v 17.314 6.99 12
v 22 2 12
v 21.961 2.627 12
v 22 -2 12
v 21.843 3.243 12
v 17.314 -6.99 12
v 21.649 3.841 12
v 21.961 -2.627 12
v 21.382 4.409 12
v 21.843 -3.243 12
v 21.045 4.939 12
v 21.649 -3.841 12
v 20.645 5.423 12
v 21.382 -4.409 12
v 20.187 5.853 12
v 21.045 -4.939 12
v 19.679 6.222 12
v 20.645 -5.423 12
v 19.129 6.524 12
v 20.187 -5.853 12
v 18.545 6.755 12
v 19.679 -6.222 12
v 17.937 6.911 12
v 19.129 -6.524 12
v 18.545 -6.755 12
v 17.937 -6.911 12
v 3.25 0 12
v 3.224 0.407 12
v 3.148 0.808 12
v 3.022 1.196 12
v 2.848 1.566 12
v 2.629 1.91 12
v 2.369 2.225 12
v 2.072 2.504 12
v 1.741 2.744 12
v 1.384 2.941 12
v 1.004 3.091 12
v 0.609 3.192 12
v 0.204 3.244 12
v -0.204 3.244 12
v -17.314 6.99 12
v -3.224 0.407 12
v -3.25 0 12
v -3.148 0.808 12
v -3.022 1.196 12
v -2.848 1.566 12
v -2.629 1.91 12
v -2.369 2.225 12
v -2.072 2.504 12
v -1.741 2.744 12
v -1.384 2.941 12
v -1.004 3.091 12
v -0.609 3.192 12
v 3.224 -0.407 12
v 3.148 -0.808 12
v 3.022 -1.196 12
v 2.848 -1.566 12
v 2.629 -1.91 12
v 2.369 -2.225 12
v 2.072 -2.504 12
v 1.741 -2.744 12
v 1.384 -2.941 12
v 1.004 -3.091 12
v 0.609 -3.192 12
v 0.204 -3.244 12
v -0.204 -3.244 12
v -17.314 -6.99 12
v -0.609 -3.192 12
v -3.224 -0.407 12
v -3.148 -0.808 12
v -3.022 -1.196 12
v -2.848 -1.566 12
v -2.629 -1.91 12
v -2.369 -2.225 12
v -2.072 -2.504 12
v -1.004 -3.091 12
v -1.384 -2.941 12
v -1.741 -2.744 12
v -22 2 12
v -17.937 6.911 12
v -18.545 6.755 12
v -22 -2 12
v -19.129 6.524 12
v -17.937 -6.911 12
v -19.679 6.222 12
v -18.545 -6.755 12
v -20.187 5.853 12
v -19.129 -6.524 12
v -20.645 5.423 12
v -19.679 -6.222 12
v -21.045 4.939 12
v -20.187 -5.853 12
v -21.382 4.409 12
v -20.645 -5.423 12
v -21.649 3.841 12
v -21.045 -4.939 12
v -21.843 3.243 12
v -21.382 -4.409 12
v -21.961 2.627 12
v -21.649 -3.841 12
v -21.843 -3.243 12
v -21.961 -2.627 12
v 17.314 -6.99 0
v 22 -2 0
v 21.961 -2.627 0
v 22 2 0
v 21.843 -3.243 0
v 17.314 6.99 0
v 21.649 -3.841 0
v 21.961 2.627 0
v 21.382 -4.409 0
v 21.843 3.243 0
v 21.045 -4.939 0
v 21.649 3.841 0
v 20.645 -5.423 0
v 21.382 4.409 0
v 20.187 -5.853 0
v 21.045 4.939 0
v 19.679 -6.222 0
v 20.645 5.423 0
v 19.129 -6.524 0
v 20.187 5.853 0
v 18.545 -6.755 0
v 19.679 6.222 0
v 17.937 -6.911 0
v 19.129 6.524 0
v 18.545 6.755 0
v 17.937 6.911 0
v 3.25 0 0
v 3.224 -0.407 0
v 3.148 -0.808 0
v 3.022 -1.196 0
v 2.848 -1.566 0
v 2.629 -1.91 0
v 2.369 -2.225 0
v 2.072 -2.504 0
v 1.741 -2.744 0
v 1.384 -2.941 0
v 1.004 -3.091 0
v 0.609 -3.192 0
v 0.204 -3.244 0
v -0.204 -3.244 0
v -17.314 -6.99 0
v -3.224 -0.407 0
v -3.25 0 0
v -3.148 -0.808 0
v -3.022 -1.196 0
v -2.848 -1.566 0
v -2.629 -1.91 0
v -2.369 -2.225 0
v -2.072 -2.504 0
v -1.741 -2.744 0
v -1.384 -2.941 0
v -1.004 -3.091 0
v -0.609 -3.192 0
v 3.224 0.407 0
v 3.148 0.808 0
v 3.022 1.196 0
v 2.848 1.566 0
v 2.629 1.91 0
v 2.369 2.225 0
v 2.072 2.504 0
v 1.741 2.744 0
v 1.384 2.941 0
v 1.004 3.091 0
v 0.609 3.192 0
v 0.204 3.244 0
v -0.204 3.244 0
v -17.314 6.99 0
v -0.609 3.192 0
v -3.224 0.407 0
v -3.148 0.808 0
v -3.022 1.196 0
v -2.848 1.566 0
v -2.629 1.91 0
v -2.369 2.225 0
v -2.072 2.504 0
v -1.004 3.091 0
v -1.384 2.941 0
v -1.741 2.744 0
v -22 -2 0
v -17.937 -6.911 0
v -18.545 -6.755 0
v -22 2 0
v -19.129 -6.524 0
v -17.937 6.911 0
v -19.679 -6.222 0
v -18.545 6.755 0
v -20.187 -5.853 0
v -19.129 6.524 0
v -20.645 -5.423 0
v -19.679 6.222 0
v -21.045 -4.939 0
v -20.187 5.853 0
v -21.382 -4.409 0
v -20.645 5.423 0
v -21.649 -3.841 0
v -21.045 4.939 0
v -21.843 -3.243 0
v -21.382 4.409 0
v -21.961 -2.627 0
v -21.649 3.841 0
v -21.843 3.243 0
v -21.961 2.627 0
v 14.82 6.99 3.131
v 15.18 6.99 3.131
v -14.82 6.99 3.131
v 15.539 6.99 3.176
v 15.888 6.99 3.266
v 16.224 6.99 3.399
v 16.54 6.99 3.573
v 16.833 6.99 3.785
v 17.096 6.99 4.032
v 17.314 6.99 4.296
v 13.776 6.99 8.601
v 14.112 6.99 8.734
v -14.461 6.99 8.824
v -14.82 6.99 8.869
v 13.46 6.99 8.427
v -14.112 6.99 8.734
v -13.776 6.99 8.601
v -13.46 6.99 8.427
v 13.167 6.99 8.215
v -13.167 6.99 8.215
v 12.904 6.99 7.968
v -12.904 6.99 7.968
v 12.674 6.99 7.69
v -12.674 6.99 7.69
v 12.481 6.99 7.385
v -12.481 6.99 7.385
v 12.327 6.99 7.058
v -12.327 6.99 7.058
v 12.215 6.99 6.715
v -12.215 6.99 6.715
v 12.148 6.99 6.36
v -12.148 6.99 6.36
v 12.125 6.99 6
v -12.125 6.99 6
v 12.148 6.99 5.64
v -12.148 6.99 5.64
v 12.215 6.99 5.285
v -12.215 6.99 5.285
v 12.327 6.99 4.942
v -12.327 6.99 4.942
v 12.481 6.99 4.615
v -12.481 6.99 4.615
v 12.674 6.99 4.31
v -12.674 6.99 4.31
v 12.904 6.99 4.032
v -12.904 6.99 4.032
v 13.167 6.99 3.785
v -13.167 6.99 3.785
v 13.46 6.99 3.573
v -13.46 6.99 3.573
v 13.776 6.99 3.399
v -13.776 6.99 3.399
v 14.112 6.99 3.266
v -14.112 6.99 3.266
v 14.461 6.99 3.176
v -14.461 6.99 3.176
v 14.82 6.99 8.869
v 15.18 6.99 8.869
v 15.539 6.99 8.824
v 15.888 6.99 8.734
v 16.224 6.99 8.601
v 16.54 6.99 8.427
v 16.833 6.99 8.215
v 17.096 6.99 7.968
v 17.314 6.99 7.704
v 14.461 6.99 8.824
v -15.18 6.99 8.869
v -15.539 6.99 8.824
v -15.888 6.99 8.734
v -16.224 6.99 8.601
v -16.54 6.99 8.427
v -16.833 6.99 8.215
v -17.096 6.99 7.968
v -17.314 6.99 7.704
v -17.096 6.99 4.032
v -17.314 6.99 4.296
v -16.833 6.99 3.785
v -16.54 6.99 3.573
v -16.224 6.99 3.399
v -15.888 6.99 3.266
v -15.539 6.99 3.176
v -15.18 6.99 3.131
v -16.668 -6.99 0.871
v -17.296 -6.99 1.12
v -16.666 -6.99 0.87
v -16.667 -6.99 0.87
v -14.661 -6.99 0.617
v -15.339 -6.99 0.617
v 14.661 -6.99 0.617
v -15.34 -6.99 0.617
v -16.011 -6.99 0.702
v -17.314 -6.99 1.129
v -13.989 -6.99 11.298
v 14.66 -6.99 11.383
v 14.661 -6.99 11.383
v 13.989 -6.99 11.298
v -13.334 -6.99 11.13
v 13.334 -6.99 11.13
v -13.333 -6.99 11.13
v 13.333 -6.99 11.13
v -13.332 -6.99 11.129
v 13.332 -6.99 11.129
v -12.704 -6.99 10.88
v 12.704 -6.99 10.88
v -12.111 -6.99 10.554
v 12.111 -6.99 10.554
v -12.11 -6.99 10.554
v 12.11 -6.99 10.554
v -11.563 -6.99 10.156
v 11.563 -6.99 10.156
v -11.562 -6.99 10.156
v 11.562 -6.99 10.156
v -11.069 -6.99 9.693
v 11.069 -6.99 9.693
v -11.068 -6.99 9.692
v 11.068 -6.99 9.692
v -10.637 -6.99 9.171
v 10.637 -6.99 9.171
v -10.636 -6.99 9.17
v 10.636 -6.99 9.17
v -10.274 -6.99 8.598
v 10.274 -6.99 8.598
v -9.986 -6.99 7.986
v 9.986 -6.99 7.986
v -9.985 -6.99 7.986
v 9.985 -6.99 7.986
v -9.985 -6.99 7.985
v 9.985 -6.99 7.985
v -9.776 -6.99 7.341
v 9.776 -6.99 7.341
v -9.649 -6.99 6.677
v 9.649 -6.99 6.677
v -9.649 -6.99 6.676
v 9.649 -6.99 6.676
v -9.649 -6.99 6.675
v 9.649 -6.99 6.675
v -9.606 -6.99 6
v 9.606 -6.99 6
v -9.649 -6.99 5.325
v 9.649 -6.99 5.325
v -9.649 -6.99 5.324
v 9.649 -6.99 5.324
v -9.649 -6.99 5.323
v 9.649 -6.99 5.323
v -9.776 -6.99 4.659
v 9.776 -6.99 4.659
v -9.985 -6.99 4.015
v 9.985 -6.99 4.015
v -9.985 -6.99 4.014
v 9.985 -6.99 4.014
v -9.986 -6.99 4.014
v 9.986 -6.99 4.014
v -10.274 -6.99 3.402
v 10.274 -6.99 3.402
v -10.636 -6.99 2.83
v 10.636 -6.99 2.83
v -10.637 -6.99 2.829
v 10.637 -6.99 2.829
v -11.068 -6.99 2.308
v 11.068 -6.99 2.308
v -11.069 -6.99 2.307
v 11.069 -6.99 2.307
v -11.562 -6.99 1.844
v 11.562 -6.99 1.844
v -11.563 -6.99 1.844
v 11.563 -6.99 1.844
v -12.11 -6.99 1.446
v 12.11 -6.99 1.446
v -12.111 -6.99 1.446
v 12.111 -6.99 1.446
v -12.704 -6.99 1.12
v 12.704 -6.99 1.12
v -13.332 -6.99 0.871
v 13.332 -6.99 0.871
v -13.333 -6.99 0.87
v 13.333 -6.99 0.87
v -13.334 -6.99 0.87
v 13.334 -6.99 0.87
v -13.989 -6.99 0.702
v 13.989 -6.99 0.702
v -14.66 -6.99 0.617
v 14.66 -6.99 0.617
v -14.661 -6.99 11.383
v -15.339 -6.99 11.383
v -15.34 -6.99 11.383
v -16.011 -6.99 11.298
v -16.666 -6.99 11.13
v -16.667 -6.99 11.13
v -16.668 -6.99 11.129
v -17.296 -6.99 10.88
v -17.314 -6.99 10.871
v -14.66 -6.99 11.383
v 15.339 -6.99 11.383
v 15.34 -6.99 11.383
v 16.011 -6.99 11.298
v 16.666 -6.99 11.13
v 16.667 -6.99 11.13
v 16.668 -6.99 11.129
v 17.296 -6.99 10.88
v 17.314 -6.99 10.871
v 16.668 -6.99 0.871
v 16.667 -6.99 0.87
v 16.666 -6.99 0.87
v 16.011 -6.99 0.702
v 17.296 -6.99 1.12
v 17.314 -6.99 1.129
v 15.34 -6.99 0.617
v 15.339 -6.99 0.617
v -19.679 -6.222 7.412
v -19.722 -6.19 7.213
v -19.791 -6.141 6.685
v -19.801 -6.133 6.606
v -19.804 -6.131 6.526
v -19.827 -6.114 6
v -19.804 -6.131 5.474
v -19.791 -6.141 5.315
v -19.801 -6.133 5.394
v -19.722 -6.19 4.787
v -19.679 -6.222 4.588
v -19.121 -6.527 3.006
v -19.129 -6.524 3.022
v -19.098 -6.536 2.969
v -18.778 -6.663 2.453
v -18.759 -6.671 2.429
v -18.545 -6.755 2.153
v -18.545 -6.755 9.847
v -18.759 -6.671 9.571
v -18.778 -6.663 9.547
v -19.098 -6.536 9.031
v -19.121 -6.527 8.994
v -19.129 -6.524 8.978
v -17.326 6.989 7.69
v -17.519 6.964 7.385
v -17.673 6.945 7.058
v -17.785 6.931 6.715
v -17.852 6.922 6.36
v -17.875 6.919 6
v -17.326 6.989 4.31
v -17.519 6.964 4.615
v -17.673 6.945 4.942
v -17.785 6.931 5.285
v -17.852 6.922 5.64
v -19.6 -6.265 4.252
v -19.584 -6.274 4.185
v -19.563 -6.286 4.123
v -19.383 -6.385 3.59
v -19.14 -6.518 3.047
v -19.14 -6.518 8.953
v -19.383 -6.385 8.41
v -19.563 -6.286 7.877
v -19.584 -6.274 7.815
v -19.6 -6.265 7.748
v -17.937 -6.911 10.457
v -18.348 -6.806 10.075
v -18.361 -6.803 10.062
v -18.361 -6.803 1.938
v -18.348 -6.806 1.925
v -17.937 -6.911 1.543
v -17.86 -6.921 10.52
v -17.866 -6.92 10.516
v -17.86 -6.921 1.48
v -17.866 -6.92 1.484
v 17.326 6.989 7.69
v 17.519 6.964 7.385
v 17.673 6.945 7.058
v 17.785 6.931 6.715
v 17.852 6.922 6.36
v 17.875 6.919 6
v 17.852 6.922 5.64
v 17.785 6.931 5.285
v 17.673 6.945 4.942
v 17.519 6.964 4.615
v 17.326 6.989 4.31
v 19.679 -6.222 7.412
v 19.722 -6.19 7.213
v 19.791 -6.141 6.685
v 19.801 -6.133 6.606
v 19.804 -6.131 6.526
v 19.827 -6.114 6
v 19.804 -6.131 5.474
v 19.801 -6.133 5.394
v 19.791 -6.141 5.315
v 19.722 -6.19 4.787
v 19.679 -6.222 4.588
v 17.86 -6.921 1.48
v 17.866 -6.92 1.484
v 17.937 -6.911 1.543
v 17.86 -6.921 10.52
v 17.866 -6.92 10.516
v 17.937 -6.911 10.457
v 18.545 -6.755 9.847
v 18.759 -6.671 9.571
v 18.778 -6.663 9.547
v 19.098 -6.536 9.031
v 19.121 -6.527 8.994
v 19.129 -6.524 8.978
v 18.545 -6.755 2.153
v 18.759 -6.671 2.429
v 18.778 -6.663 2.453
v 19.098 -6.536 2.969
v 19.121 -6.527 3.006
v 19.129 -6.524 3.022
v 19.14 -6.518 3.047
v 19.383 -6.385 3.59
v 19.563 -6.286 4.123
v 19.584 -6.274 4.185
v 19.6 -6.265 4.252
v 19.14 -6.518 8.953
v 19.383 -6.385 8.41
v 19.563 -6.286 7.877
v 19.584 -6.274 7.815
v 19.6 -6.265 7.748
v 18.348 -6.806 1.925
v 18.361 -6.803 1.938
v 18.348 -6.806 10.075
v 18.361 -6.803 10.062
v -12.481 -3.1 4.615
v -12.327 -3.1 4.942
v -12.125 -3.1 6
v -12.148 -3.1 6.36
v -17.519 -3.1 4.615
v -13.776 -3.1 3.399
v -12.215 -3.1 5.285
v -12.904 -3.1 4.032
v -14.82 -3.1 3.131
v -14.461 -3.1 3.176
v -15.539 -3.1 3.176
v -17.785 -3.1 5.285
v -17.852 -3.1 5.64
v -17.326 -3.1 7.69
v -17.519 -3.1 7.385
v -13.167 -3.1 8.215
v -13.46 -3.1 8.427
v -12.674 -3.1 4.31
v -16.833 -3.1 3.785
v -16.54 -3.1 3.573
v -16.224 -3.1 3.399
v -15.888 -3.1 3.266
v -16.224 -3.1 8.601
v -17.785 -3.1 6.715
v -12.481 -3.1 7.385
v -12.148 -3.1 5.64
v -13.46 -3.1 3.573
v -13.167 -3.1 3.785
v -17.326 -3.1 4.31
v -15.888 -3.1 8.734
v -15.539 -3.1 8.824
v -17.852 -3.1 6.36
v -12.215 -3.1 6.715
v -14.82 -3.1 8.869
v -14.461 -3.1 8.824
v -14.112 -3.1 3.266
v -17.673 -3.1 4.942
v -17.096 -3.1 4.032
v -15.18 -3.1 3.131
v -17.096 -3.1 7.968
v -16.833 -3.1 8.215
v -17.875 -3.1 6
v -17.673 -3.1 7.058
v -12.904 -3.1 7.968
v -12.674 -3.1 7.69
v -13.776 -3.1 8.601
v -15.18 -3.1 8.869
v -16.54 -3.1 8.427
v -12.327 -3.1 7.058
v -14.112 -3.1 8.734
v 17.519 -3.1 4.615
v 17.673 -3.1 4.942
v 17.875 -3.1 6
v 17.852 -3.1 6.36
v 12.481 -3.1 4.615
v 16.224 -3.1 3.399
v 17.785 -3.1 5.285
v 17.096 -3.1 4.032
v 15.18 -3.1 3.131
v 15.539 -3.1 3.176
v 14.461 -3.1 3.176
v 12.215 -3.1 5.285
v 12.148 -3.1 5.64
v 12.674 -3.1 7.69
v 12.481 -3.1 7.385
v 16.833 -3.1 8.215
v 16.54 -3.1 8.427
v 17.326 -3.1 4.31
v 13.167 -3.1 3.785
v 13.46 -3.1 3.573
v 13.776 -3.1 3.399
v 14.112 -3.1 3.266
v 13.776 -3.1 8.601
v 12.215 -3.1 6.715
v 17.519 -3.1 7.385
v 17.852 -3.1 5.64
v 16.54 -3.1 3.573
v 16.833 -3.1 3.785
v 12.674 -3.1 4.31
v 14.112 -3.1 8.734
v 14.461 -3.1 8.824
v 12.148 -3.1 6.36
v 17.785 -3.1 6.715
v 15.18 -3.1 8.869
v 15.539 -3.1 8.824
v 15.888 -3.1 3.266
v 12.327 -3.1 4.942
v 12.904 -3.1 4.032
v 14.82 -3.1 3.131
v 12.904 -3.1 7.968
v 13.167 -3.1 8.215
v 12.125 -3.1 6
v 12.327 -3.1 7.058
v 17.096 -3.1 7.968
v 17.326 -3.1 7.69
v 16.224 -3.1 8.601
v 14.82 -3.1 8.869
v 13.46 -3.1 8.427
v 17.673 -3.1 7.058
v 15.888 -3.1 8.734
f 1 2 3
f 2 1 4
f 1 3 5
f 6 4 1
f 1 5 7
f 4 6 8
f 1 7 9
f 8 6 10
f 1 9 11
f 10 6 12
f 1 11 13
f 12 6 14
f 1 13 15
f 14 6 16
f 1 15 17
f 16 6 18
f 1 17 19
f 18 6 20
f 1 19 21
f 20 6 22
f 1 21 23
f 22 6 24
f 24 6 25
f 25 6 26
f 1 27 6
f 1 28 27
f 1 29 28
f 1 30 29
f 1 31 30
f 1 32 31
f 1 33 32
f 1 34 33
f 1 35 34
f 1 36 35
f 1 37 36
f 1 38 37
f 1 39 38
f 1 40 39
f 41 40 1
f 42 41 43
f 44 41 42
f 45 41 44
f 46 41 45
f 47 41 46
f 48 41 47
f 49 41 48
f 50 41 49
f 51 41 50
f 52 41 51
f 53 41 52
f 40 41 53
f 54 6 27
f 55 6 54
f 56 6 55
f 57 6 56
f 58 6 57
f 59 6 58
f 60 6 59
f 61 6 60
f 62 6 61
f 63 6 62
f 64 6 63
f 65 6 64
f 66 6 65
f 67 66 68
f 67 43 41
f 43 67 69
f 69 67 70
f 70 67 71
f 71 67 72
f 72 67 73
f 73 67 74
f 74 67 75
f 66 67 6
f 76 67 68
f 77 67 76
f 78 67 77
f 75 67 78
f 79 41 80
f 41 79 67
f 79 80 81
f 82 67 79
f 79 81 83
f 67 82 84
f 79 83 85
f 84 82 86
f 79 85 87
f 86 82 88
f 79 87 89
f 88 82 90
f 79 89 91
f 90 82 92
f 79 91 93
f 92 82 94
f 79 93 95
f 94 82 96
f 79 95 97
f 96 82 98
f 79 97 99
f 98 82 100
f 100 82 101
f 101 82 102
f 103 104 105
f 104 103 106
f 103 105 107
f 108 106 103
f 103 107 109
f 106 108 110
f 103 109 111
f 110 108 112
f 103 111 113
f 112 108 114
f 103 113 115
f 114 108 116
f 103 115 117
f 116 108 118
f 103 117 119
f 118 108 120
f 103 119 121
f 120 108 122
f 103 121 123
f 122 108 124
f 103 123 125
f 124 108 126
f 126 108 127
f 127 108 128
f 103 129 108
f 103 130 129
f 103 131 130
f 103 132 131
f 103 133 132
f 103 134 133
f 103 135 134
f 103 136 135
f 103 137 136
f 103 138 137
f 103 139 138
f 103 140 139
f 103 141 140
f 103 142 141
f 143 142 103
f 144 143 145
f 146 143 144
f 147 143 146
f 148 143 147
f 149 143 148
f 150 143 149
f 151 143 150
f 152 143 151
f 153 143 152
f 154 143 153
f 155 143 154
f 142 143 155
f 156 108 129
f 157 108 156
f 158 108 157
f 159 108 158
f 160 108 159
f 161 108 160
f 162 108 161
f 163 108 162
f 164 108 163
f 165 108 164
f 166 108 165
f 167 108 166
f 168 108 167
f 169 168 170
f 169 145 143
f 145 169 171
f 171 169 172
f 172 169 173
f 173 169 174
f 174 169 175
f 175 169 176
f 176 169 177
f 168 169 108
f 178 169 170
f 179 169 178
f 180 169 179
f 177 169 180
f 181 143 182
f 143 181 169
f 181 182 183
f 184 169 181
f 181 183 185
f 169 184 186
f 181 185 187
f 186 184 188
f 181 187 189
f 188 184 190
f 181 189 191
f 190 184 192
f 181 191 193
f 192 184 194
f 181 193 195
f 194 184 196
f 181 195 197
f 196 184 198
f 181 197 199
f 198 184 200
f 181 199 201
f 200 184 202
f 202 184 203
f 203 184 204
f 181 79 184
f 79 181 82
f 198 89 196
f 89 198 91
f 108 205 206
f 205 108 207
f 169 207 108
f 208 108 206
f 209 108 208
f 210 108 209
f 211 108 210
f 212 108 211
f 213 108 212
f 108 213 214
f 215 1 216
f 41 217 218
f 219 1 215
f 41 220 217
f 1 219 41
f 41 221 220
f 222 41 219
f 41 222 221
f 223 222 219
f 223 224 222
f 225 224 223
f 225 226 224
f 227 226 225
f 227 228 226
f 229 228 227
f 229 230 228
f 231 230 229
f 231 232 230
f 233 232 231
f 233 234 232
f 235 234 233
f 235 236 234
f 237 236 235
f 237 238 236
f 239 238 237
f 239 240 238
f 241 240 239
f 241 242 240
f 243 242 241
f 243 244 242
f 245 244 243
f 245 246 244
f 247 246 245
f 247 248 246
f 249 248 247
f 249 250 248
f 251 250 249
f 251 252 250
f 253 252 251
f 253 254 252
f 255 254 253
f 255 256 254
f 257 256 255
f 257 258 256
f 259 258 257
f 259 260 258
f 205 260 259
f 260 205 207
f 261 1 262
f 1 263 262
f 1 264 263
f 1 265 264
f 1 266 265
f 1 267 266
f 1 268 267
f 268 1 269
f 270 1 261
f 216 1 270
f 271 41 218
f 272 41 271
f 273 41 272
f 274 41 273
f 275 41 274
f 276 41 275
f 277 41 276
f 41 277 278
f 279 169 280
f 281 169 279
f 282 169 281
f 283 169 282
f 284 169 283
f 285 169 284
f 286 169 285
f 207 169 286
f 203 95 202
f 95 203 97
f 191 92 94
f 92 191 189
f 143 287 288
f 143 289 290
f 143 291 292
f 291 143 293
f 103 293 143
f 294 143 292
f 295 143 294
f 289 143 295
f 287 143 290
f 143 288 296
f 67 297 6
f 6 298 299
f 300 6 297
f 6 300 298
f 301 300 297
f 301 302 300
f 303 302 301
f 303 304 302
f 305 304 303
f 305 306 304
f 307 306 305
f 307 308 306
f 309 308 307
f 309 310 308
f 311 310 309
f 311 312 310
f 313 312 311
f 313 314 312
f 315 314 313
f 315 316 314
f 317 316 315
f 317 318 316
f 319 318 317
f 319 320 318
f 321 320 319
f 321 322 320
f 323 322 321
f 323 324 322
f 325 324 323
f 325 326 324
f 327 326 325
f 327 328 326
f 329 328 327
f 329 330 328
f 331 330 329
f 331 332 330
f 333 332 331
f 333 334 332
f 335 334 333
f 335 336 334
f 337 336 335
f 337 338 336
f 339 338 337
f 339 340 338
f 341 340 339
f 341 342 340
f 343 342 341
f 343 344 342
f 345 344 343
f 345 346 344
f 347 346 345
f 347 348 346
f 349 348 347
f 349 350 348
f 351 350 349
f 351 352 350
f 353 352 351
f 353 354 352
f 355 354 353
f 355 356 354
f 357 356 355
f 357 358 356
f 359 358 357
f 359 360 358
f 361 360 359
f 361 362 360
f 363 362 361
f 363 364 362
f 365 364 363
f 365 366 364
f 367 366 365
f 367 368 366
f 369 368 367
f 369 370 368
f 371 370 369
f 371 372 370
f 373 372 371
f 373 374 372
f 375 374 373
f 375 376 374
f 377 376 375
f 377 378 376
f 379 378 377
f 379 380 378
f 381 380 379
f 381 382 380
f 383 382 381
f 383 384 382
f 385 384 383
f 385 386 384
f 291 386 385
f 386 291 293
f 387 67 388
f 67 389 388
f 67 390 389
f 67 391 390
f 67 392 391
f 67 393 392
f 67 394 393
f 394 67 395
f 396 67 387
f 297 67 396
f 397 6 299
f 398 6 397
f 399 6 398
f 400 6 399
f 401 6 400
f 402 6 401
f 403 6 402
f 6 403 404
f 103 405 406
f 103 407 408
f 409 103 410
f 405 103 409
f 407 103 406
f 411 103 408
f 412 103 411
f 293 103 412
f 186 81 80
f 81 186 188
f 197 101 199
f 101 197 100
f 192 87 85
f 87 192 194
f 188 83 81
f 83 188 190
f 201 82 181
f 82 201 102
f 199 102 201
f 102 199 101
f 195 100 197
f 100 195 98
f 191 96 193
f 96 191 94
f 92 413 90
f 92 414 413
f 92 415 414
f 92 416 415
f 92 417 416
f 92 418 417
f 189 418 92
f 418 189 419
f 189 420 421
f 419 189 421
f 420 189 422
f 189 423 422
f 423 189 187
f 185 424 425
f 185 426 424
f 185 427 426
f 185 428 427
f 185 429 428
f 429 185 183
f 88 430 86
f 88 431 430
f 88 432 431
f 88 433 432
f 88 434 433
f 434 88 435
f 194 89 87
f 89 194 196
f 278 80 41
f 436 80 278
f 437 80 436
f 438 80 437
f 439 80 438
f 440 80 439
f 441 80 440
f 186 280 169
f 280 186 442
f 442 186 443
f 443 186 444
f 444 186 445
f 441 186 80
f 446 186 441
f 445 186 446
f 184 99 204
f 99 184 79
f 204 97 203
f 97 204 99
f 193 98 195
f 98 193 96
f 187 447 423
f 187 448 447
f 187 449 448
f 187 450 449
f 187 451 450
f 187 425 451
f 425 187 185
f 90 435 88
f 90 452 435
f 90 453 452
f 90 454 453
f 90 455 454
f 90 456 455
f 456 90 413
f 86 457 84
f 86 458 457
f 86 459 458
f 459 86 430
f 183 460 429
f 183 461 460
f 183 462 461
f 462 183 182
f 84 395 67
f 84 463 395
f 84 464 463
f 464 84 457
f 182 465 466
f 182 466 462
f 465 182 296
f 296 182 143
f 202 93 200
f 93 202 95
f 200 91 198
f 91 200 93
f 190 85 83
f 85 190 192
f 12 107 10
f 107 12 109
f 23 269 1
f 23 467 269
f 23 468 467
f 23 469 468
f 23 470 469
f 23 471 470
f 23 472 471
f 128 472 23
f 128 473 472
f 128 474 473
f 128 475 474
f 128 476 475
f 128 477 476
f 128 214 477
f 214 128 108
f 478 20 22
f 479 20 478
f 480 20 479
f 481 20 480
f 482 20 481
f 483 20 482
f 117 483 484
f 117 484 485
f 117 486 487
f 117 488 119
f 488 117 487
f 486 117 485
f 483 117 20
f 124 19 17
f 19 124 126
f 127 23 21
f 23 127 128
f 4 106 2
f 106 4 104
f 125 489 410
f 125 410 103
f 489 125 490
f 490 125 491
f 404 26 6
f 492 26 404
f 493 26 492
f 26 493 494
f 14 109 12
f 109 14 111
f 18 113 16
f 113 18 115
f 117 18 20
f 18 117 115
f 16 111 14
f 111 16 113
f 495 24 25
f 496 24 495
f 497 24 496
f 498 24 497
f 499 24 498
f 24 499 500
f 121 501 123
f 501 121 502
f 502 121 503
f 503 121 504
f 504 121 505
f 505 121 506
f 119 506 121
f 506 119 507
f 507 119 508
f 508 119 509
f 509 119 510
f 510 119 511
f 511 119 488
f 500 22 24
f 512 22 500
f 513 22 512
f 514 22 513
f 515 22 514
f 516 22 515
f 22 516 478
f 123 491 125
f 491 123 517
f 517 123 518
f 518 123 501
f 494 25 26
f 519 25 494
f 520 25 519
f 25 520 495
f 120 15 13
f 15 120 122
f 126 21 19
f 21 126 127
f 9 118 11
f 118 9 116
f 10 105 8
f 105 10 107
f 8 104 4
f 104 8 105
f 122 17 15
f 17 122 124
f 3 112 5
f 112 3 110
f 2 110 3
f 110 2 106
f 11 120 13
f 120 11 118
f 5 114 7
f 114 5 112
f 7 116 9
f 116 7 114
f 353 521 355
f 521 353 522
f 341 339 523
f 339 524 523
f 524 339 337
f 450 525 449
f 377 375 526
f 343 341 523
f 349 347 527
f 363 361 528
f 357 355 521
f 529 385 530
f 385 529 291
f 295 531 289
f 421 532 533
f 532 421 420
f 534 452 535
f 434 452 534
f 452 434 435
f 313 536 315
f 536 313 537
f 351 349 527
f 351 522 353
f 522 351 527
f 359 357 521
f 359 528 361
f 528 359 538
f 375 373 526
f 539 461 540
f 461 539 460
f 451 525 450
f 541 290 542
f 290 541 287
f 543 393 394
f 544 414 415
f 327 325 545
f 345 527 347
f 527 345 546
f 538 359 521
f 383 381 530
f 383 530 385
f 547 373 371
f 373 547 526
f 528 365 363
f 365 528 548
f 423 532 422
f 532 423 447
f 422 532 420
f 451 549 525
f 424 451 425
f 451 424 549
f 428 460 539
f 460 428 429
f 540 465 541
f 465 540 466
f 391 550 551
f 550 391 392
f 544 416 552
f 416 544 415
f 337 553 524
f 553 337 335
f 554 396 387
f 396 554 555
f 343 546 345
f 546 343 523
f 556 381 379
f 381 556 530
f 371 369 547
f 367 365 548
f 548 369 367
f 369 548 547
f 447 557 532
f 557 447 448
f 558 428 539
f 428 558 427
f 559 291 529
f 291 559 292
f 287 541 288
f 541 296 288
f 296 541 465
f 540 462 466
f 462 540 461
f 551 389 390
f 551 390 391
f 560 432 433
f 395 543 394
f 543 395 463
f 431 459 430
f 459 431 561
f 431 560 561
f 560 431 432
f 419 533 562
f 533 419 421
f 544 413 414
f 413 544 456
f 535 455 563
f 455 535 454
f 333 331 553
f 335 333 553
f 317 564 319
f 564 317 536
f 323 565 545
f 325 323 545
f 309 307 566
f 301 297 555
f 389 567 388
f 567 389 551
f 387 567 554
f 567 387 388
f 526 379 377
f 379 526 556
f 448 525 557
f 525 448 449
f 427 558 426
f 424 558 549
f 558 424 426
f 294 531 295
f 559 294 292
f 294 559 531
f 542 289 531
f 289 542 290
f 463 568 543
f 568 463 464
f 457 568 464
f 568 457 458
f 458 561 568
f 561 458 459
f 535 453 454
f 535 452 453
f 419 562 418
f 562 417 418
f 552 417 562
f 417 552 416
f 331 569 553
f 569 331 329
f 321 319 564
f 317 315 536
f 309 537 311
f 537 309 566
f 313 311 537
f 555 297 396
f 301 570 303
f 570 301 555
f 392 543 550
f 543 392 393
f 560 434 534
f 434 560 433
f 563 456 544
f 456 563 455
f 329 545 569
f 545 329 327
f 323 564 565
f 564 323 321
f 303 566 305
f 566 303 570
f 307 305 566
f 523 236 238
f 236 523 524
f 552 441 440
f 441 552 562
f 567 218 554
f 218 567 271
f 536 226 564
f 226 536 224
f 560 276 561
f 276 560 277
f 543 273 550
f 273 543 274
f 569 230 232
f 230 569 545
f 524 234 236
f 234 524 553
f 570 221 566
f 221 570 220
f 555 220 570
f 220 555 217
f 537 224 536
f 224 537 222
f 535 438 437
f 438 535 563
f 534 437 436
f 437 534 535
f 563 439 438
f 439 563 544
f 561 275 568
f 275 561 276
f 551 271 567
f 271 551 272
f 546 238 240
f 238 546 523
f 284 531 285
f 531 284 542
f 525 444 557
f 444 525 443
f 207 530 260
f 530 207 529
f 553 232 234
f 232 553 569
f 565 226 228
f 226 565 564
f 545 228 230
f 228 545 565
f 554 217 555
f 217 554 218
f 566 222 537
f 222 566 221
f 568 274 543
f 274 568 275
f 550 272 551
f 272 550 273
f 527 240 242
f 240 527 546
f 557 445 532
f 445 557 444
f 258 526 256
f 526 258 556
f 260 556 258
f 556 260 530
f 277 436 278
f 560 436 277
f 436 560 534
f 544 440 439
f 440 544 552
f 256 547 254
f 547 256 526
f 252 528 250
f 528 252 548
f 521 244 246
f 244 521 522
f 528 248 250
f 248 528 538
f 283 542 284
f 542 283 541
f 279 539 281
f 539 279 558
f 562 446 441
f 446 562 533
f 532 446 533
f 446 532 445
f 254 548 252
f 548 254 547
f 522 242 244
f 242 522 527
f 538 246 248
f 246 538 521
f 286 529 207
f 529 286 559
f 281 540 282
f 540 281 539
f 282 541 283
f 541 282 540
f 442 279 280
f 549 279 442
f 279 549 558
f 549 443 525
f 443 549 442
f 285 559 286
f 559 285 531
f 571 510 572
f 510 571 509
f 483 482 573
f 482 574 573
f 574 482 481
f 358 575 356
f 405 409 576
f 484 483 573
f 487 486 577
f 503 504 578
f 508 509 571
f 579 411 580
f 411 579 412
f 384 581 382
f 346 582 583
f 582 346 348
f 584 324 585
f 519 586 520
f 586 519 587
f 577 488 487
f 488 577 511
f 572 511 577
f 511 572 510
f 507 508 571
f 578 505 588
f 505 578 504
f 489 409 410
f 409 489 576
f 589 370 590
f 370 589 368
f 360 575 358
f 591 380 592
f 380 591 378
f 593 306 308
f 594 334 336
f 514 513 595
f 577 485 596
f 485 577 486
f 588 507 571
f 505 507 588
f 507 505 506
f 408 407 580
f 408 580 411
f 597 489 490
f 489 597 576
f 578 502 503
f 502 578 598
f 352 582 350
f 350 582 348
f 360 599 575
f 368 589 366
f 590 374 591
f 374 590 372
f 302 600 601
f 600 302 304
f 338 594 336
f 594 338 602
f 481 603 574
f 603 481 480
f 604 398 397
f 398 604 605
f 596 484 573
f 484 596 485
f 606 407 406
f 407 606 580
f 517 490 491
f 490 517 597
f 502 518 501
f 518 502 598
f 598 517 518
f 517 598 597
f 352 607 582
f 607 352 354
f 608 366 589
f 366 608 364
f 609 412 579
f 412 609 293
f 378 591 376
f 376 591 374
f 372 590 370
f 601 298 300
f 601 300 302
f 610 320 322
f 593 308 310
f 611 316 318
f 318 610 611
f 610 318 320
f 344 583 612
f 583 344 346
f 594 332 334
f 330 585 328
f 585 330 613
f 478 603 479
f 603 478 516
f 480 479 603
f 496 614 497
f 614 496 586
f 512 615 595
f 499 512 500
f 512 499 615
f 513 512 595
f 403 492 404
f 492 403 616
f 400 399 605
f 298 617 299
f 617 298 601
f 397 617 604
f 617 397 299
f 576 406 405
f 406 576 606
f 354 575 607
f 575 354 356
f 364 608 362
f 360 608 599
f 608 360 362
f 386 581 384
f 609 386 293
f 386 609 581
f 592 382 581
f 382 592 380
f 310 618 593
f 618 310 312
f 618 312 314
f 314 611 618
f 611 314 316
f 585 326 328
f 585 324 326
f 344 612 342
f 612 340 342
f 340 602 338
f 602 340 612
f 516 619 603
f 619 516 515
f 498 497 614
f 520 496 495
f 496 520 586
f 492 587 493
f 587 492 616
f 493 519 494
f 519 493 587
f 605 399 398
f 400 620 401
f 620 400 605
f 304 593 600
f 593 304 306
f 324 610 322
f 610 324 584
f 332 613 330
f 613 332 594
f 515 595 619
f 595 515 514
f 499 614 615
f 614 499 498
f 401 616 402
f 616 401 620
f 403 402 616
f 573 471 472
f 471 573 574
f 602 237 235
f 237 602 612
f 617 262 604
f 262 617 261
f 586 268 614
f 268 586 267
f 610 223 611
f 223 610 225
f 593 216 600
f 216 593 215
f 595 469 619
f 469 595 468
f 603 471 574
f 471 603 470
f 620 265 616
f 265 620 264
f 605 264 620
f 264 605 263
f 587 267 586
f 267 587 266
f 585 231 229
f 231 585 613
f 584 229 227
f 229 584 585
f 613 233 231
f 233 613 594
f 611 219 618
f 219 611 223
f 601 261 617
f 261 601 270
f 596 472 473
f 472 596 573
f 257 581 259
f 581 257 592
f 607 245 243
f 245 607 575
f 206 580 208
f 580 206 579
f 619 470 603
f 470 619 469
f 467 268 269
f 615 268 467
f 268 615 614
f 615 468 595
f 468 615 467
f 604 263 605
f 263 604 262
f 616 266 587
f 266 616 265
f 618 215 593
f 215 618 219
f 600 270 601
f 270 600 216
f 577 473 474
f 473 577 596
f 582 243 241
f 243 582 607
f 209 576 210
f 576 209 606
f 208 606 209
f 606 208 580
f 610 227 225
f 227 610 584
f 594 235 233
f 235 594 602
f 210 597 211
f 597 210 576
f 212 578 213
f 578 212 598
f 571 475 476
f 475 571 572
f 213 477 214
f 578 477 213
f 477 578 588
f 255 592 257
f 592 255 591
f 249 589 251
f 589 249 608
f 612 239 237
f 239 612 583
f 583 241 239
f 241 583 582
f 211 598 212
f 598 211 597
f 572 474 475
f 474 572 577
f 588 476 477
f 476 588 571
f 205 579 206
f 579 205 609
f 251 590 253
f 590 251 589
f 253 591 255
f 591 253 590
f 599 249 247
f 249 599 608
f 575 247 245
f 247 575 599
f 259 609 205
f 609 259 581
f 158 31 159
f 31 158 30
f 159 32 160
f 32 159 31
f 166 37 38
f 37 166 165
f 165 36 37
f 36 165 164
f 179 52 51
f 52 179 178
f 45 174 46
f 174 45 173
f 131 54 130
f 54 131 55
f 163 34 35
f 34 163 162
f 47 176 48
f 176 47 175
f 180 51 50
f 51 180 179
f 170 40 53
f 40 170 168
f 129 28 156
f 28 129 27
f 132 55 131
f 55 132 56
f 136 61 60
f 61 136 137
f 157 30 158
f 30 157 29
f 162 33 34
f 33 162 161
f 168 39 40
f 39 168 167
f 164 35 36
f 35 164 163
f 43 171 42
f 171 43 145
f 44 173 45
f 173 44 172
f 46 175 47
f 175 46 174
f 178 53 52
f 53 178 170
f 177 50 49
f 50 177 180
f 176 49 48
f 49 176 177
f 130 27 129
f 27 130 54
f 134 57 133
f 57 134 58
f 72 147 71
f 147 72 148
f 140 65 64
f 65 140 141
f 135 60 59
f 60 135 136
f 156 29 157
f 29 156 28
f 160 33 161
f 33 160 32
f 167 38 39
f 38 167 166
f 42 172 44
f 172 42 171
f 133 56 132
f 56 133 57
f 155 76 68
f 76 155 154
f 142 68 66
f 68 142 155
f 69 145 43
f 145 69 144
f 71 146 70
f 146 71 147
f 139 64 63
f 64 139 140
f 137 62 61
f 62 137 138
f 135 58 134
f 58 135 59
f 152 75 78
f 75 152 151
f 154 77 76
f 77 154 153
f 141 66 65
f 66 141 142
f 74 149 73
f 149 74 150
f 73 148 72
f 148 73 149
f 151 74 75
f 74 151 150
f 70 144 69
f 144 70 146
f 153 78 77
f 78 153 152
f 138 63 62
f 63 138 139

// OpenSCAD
$fn = 50;


difference() {
	union() {
		cylinder(h = 12, r = 7.0000000000);
		translate(v = [-7.5000000000, 0.0000000000, 0]) {
			hull() {
				translate(v = [-9.5000000000, 2.0000000000, 0]) {
					cylinder(h = 12, r = 5);
				}
				translate(v = [9.5000000000, 2.0000000000, 0]) {
					cylinder(h = 12, r = 5);
				}
				translate(v = [-9.5000000000, -2.0000000000, 0]) {
					cylinder(h = 12, r = 5);
				}
				translate(v = [9.5000000000, -2.0000000000, 0]) {
					cylinder(h = 12, r = 5);
				}
			}
		}
		translate(v = [-7.5000000000, 0.0000000000, 0]) {
			hull() {
				translate(v = [-9.5000000000, 2.0000000000, 0]) {
					cylinder(h = 12, r = 5);
				}
				translate(v = [9.5000000000, 2.0000000000, 0]) {
					cylinder(h = 12, r = 5);
				}
				translate(v = [-9.5000000000, -2.0000000000, 0]) {
					cylinder(h = 12, r = 5);
				}
				translate(v = [9.5000000000, -2.0000000000, 0]) {
					cylinder(h = 12, r = 5);
				}
			}
		}
		translate(v = [7.5000000000, 0.0000000000, 0]) {
			hull() {
				translate(v = [-9.5000000000, 2.0000000000, 0]) {
					cylinder(h = 12, r = 5);
				}
				translate(v = [9.5000000000, 2.0000000000, 0]) {
					cylinder(h = 12, r = 5);
				}
				translate(v = [-9.5000000000, -2.0000000000, 0]) {
					cylinder(h = 12, r = 5);
				}
				translate(v = [9.5000000000, -2.0000000000, 0]) {
					cylinder(h = 12, r = 5);
				}
			}
		}
		translate(v = [7.5000000000, 0.0000000000, 0]) {
			hull() {
				translate(v = [-9.5000000000, 2.0000000000, 0]) {
					cylinder(h = 12, r = 5);
				}
				translate(v = [9.5000000000, 2.0000000000, 0]) {
					cylinder(h = 12, r = 5);
				}
				translate(v = [-9.5000000000, -2.0000000000, 0]) {
					cylinder(h = 12, r = 5);
				}
				translate(v = [9.5000000000, -2.0000000000, 0]) {
					cylinder(h = 12, r = 5);
				}
			}
		}
	}
	union() {
		translate(v = [-15.0000000000, -7.0000000000, 6.0000000000]) {
			rotate(a = [90, 0, 0]) {
				difference() {
					union() {
						#translate(v = [0, 0, -14.0000000000]) {
							cylinder(h = 14, r = 2.6000000000);
						}
						#translate(v = [0, 0, -3.9000000000]) {
							cylinder(h = 3.9000000000, r1 = 2.8750000000, r2 = 5.4000000000);
						}
						#translate(v = [0, 0, -14.0000000000]) {
							cylinder(h = 14, r = 2.8750000000);
						}
						#translate(v = [0, 0, -14.0000000000]) {
							cylinder(h = 14, r = 2.6000000000);
						}
					}
					union();
				}
			}
		}
		translate(v = [15.0000000000, -7.0000000000, 6.0000000000]) {
			rotate(a = [90, 0, 0]) {
				difference() {
					union() {
						#translate(v = [0, 0, -14.0000000000]) {
							cylinder(h = 14, r = 2.6000000000);
						}
						#translate(v = [0, 0, -3.9000000000]) {
							cylinder(h = 3.9000000000, r1 = 2.8750000000, r2 = 5.4000000000);
						}
						#translate(v = [0, 0, -14.0000000000]) {
							cylinder(h = 14, r = 2.8750000000);
						}
						#translate(v = [0, 0, -14.0000000000]) {
							cylinder(h = 14, r = 2.6000000000);
						}
					}
					union();
				}
			}
		}
		translate(v = [0, 0, -100]) {
			cylinder(h = 200, r = 3.2500000000);
		}
		translate(v = [0, 0, -100]) {
			cylinder(h = 200, r = 1.8000000000);
		}
	}
}
